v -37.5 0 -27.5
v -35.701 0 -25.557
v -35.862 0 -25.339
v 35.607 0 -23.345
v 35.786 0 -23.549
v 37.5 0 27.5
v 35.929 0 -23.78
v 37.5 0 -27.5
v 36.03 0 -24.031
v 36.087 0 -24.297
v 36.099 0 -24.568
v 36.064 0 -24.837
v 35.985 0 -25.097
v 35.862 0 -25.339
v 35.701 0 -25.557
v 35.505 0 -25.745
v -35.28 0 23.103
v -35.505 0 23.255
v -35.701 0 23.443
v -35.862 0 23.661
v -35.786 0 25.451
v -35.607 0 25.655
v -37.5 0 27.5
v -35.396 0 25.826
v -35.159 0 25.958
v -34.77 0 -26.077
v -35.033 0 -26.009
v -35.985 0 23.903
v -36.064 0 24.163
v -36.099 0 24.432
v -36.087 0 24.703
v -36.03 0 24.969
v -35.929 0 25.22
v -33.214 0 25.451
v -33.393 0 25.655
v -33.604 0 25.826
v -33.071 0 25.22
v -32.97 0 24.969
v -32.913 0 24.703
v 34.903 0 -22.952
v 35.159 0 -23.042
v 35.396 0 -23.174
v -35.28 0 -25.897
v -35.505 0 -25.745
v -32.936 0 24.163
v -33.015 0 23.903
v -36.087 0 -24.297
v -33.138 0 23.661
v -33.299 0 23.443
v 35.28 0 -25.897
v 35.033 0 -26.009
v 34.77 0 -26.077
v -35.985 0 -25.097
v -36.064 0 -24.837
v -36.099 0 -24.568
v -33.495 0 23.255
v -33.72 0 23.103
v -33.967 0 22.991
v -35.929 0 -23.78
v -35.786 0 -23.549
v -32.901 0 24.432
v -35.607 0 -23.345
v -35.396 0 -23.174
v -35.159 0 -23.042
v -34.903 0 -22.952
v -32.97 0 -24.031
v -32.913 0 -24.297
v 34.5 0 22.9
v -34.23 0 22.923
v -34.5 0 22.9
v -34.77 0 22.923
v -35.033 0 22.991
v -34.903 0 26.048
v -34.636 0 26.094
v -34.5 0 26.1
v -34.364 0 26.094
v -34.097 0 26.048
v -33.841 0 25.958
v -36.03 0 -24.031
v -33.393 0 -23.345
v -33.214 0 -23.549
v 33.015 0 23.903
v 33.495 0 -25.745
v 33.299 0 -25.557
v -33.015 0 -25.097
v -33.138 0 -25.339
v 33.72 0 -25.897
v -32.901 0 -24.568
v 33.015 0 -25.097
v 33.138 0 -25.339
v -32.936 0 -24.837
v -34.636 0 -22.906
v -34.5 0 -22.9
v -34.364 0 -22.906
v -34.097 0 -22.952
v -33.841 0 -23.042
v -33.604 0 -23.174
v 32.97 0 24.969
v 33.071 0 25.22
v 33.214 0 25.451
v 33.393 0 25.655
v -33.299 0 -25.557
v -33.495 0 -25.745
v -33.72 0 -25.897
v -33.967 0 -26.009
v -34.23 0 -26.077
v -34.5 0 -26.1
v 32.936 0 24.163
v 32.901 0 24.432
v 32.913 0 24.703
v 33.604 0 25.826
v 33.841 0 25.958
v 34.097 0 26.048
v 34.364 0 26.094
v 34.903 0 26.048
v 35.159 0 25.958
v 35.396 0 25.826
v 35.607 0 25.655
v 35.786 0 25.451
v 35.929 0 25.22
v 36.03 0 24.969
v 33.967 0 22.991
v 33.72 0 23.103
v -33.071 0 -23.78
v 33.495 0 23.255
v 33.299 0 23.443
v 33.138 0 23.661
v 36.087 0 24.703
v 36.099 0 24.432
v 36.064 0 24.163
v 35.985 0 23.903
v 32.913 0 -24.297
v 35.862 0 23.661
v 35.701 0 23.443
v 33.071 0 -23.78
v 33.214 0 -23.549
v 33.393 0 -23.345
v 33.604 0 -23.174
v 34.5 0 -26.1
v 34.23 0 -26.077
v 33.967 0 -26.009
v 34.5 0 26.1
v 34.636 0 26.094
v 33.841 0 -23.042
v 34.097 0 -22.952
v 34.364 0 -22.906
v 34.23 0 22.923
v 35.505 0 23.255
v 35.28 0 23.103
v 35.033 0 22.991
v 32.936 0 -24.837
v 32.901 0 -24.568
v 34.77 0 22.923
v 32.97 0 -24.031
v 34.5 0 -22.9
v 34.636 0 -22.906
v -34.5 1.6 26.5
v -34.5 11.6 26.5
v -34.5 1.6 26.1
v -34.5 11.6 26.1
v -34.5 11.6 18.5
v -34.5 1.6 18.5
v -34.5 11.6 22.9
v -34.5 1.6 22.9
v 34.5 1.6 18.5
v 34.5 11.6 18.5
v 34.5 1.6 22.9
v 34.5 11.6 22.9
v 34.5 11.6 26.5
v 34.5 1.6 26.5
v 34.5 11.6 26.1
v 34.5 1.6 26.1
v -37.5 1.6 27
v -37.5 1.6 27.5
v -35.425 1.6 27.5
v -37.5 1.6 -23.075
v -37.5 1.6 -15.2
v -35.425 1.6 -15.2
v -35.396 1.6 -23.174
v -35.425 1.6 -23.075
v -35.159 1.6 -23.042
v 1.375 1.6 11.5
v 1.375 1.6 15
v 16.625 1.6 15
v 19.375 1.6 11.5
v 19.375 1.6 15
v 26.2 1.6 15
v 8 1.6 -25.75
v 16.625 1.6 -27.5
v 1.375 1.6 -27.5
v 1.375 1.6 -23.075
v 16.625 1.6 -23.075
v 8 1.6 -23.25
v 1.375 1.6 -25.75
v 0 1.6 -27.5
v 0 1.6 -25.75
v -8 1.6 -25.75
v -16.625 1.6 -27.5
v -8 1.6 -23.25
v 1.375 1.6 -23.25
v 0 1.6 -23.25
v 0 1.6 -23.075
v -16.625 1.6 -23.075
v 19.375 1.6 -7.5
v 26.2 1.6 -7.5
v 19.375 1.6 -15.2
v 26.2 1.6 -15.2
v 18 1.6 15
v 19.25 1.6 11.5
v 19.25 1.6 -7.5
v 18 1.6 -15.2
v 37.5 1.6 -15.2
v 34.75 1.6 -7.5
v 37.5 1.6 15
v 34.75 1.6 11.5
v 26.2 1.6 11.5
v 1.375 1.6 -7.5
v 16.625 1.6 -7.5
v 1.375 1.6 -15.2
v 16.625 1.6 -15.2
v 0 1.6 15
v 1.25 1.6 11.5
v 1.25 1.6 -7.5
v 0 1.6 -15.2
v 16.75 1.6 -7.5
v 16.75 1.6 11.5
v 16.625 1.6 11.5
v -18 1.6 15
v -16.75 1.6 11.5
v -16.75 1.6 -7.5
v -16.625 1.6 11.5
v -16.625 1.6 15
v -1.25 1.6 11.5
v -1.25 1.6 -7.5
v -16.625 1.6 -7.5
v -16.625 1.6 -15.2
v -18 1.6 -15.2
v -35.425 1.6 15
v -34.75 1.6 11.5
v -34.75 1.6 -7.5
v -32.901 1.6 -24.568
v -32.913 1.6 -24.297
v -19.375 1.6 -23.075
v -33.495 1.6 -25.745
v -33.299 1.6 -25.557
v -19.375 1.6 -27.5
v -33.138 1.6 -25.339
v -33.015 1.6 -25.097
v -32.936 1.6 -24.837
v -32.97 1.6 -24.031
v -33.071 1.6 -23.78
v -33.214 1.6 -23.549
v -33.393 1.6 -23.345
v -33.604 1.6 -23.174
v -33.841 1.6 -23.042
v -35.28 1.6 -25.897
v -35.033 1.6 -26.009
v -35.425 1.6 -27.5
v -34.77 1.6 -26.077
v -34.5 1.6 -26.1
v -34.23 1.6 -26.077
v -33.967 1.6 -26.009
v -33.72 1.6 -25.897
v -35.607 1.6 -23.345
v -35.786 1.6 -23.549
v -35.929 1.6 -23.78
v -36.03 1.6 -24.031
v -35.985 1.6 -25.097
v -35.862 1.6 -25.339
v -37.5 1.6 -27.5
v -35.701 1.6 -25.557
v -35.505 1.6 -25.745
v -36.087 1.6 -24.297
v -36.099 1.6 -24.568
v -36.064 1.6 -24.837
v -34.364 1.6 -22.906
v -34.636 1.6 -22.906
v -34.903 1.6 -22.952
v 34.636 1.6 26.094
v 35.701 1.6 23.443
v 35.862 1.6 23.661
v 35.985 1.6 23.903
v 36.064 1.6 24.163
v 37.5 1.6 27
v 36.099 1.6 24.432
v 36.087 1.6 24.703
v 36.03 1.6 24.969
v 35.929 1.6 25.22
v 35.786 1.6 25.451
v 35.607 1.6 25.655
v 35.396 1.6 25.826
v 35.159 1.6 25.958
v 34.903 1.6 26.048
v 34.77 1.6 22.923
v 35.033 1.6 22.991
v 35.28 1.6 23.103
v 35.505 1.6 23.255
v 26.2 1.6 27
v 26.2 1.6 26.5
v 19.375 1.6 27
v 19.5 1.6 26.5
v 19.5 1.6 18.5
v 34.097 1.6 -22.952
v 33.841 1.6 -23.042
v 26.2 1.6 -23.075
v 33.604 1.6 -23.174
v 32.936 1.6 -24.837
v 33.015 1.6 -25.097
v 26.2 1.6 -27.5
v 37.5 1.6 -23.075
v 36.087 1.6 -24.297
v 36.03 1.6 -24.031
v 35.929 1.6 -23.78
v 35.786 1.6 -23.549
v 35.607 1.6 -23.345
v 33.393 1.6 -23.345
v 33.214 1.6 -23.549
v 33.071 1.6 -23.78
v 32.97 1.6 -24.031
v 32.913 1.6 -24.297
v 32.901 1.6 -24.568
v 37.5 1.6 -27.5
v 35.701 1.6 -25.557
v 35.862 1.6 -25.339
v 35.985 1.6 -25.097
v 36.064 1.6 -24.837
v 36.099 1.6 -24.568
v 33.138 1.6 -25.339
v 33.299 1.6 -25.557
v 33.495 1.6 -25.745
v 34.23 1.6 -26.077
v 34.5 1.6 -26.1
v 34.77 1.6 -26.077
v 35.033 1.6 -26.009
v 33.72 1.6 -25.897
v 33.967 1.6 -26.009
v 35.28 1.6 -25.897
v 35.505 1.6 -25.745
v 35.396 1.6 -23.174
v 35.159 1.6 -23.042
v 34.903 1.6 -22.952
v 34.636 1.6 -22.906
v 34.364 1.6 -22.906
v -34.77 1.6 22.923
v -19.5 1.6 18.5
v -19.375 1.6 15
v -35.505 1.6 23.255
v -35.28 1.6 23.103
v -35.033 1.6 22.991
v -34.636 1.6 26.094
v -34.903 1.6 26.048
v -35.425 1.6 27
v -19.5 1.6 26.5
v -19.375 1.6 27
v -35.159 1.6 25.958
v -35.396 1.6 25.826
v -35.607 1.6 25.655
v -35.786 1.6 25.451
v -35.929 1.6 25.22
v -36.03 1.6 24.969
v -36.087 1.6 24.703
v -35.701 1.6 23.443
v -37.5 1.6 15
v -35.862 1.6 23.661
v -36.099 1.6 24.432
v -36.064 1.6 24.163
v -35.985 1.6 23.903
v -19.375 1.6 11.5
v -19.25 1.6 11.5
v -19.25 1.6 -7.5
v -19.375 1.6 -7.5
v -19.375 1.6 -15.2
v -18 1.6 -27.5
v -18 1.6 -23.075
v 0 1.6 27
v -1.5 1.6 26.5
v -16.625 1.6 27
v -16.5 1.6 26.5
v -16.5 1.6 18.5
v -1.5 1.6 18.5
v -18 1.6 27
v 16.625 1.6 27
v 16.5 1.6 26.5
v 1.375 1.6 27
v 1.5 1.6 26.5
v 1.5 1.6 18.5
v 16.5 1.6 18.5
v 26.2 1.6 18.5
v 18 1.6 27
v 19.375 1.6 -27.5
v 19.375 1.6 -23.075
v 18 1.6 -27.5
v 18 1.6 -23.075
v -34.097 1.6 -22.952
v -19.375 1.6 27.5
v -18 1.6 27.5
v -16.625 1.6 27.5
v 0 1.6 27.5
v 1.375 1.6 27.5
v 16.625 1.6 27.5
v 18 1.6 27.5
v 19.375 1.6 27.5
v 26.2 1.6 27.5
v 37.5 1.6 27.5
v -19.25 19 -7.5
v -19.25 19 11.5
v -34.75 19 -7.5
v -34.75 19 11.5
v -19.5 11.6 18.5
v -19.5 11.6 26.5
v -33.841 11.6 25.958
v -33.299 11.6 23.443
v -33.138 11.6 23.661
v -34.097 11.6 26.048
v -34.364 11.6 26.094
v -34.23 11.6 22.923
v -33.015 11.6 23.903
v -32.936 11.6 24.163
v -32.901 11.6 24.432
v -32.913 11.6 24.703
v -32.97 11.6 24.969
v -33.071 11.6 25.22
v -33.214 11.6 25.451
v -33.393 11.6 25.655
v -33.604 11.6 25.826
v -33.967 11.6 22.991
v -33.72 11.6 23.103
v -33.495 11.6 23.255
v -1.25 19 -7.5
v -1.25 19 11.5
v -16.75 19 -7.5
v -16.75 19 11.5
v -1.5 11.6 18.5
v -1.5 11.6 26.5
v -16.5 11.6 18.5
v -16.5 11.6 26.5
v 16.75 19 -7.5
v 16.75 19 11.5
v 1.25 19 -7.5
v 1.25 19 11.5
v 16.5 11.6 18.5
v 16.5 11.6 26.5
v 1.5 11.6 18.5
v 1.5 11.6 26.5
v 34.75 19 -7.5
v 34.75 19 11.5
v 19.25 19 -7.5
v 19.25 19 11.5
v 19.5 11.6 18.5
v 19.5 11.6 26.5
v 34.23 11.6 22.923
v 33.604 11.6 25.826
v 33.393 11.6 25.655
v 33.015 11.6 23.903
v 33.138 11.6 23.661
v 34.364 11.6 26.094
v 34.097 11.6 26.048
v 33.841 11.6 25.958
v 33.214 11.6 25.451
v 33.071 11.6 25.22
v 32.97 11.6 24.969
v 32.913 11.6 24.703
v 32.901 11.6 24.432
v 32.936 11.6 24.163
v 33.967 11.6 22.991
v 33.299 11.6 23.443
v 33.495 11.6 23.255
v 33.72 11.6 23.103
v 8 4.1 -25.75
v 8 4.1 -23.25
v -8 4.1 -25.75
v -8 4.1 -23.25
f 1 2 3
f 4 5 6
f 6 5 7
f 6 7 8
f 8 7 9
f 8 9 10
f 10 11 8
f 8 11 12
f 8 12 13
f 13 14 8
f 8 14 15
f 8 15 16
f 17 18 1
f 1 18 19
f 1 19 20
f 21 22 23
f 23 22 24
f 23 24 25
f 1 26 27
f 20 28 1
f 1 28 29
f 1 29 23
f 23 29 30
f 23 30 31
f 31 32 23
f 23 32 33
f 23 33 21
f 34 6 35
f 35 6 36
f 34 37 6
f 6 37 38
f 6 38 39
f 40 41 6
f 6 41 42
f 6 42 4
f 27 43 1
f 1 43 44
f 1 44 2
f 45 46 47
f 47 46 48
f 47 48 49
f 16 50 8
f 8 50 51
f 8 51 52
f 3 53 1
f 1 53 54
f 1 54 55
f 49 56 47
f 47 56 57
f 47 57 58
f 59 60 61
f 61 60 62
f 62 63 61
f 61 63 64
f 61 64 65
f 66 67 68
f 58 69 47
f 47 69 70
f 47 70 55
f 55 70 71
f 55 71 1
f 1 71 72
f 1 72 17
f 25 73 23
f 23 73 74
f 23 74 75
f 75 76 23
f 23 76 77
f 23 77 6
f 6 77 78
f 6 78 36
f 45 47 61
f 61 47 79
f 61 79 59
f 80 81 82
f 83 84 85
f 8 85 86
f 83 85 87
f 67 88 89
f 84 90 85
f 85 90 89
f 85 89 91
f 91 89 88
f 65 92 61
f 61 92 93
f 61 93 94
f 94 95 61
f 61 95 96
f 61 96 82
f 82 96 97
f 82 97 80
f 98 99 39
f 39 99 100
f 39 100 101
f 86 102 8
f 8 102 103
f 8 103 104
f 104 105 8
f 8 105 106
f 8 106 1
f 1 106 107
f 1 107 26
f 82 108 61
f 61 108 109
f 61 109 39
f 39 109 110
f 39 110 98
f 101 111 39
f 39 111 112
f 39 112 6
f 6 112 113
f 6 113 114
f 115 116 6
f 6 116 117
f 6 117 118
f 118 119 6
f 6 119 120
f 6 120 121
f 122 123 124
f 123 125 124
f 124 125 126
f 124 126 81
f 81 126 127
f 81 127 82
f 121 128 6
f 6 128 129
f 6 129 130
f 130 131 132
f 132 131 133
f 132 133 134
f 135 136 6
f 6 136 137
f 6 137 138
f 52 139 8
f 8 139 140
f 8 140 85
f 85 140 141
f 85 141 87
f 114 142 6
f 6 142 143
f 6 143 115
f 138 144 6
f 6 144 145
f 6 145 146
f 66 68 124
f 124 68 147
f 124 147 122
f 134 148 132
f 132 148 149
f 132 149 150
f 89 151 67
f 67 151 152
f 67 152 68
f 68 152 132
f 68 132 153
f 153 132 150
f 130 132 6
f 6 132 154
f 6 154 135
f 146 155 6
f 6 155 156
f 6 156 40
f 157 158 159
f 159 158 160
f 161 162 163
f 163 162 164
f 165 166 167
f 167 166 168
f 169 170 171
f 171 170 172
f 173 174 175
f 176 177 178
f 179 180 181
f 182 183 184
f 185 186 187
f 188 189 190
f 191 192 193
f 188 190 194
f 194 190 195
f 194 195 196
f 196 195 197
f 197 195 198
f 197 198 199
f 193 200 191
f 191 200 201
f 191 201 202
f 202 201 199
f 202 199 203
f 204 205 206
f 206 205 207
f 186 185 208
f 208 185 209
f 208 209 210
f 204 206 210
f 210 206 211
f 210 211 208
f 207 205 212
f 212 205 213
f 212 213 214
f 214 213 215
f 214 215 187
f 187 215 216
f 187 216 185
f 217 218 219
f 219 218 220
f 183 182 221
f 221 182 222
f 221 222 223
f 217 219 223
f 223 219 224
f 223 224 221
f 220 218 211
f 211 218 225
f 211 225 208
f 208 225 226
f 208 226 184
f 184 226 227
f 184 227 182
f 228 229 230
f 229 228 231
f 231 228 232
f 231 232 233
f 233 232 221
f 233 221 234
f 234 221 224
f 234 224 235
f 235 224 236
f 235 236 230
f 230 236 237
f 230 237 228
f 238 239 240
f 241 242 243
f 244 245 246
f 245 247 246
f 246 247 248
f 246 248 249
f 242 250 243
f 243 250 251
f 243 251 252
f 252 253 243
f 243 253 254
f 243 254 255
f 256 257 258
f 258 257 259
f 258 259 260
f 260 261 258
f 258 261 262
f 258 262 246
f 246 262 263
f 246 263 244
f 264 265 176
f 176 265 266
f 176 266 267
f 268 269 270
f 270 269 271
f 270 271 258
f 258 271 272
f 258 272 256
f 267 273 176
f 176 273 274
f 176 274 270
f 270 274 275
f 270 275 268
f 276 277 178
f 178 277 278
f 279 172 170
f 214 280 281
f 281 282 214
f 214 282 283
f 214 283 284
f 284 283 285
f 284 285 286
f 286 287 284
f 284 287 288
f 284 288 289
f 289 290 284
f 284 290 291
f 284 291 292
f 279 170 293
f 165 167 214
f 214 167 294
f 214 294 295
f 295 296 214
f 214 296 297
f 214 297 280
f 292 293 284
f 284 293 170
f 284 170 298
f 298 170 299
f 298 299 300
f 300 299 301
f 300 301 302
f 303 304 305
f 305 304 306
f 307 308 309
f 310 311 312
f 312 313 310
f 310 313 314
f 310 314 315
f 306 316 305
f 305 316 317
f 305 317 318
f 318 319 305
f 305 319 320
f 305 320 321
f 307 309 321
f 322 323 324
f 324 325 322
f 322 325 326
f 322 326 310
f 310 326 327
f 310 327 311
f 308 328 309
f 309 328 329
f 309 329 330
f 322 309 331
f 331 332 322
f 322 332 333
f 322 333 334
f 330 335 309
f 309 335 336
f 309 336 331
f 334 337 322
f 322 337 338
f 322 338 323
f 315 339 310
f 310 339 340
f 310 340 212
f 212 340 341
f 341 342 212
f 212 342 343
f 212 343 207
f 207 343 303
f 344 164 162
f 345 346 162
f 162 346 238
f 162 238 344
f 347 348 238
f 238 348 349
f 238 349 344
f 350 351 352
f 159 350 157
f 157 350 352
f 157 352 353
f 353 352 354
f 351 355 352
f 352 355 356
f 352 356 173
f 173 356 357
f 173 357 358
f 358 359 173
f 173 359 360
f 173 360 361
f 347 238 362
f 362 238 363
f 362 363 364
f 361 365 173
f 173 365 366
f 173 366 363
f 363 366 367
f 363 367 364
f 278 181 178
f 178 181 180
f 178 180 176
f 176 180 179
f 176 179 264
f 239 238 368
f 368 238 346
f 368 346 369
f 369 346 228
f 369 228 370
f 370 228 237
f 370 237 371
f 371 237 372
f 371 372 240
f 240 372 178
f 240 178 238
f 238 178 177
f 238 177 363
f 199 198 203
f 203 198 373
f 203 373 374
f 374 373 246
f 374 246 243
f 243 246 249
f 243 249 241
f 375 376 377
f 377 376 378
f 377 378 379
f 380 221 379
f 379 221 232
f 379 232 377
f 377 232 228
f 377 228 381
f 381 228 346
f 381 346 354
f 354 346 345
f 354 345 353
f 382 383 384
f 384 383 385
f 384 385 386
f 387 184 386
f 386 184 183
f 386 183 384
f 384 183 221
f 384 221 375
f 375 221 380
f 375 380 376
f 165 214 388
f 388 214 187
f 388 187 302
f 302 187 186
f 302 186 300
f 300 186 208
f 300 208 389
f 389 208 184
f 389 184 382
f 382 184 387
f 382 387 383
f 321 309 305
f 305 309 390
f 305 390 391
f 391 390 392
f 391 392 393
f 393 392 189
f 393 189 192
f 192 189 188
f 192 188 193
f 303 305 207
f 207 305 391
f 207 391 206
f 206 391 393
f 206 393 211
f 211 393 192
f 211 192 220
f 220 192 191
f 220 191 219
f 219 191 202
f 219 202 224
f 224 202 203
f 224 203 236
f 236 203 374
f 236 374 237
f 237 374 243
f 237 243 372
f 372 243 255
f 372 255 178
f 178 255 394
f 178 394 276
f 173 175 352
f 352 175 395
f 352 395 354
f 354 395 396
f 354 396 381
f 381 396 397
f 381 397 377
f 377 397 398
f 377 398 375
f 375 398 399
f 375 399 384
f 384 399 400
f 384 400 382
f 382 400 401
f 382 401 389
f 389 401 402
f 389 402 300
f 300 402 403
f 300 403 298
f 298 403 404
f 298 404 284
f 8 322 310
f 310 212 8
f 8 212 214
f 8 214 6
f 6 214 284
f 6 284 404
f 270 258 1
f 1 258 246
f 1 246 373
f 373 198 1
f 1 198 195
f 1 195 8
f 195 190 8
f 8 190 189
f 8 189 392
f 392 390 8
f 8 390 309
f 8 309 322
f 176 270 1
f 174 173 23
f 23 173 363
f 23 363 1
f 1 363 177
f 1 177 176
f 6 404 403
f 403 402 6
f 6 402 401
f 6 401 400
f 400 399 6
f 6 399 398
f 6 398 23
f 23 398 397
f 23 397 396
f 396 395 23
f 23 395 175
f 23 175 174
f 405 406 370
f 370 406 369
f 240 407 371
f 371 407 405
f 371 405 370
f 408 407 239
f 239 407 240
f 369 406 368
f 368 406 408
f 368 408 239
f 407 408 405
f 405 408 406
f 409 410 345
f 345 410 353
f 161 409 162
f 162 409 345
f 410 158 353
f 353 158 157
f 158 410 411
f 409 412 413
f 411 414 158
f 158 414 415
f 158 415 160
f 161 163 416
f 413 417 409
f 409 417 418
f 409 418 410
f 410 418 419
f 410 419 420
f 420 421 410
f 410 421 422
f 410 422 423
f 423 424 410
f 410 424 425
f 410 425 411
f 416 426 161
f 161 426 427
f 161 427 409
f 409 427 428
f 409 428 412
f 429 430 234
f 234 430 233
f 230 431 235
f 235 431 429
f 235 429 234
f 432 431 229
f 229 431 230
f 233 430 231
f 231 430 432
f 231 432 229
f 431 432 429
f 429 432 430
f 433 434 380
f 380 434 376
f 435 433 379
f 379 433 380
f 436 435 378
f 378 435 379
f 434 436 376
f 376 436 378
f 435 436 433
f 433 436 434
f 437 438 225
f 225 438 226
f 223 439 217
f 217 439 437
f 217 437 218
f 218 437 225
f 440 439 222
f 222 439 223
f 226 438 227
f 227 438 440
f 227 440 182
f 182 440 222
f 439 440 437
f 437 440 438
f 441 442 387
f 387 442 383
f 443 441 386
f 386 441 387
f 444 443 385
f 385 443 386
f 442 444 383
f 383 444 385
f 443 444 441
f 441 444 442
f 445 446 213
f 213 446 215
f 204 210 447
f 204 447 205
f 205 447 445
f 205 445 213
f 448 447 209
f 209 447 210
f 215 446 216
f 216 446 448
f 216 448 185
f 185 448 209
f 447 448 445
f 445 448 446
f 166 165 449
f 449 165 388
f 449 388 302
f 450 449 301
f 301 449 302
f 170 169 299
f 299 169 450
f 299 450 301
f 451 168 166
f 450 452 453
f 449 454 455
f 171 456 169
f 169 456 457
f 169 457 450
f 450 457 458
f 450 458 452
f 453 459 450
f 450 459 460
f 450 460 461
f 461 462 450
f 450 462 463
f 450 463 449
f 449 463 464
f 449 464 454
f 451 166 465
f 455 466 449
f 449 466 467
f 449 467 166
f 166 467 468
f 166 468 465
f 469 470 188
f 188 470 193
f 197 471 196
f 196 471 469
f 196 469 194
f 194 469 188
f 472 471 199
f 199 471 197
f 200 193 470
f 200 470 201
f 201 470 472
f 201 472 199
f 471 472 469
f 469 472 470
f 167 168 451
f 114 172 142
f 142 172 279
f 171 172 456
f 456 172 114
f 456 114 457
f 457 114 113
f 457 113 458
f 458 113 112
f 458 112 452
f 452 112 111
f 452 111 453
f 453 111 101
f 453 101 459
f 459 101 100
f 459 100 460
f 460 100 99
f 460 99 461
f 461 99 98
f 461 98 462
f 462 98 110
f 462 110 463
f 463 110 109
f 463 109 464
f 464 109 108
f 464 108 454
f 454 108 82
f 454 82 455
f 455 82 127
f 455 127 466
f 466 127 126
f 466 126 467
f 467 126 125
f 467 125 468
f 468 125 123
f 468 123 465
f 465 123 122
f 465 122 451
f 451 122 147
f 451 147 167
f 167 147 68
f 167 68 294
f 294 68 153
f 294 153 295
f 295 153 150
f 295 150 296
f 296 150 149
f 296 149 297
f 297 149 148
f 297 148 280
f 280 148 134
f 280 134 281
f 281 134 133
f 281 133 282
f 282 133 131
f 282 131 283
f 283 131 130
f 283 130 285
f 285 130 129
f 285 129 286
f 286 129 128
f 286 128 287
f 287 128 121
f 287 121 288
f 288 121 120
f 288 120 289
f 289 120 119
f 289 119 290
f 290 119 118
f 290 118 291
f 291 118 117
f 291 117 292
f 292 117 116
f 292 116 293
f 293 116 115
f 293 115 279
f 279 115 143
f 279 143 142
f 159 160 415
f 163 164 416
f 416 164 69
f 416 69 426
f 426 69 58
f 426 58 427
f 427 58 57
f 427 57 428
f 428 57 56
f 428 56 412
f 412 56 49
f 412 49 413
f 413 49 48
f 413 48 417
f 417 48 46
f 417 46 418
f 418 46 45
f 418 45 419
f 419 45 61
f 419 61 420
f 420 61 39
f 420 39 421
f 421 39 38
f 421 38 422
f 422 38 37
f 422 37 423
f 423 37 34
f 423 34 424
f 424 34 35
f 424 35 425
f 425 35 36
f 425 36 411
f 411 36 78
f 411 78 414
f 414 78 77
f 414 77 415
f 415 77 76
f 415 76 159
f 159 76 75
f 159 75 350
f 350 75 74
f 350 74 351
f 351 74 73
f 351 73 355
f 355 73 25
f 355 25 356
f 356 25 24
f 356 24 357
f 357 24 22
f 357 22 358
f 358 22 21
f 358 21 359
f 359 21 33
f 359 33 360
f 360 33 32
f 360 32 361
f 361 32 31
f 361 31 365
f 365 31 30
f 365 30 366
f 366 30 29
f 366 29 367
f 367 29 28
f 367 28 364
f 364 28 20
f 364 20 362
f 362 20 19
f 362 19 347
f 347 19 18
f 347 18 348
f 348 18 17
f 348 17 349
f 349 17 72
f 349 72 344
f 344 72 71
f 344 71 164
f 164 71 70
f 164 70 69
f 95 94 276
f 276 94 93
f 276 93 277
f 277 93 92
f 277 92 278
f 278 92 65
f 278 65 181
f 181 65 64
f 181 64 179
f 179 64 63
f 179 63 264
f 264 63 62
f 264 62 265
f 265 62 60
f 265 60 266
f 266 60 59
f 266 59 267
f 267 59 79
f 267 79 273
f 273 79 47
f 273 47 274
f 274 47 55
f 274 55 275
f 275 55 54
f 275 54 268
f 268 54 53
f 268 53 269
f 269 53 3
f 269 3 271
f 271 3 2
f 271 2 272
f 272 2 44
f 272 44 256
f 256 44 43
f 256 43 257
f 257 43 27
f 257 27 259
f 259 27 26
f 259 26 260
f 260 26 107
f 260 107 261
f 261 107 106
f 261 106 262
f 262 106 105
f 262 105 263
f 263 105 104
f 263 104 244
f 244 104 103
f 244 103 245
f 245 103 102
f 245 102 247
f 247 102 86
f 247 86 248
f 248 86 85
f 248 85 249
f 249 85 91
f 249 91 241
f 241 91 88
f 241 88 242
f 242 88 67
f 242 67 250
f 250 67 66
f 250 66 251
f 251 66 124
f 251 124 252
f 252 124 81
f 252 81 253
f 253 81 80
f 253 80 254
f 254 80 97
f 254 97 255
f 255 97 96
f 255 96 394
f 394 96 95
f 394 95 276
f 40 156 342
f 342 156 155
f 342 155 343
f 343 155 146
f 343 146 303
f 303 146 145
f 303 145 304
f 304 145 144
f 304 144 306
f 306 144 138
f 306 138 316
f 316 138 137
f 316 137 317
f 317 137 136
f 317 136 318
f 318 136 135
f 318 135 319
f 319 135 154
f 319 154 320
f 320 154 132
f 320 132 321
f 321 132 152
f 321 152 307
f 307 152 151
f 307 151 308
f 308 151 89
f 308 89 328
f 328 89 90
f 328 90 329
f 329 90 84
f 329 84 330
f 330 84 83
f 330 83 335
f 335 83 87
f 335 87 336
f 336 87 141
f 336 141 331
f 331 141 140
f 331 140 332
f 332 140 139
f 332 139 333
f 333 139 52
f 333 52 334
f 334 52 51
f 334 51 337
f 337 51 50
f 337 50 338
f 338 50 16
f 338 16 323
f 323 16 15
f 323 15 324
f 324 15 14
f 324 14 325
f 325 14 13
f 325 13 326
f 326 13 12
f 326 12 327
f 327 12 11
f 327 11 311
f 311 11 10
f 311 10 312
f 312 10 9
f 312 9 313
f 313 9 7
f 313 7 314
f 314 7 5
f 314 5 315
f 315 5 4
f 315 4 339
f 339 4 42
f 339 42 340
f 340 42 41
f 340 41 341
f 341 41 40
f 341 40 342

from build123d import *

# Parameters (mm, degrees)
SKETCH1_W              = 75
SKETCH1_H              = 55
PCB_DEPTH              = 1.6
RELAY_1_START          = 1.6
SKETCH2_W              = 15.5
SKETCH2_H              = 19
RELAY_1_DEPTH          = 17.4
TERMINAL_1_START       = 1.6
SKETCH3_W              = 15
SKETCH3_H              = 8
TERMINAL_1_DEPTH       = 10
RELAY_2_START          = 1.6
SKETCH4_W              = 15.5
SKETCH4_H              = 19
RELAY_2_DEPTH          = 17.4
TERMINAL_2_START       = 1.6
SKETCH5_W              = 15
SKETCH5_H              = 8
TERMINAL_2_DEPTH       = 10
RELAY_3_START          = 1.6
SKETCH6_W              = 15.5
SKETCH6_H              = 19
RELAY_3_DEPTH          = 17.4
TERMINAL_3_START       = 1.6
SKETCH7_W              = 15
SKETCH7_H              = 8
TERMINAL_3_DEPTH       = 10
RELAY_4_START          = 1.6
SKETCH8_W              = 15.5
SKETCH8_H              = 19
RELAY_4_DEPTH          = 17.4
TERMINAL_4_START       = 1.6
SKETCH9_W              = 15
SKETCH9_H              = 8
TERMINAL_4_DEPTH       = 10
HEADER_START           = 1.6
SKETCH10_W             = 16
SKETCH10_H             = 2.5
HEADER_DEPTH           = 2.5
MOUNT_HOLES_DEPTH      = 51.23445033
MOUNT_HOLES_DEPTH_BACK = 51.23445033
SKETCH11_R             = 1.6


with BuildPart() as part:
    # Sketch1 → PCB (new body)
    with BuildSketch(Plane(origin=(0, 0, 0), x_dir=(1, 0, 0), z_dir=(0, 1, 0))):
        Rectangle(SKETCH1_W, SKETCH1_H)
    extrude(amount=PCB_DEPTH)

    # Sketch2 → Relay_1 (add)
    with BuildSketch(Plane(origin=(0, 0, 0), x_dir=(1, 0, 0), z_dir=(0, 1, 0)).offset(RELAY_1_START)):
        with Locations((-27, -2)):
            Rectangle(SKETCH2_W, SKETCH2_H)
    extrude(amount=RELAY_1_DEPTH)

    # Sketch3 → Terminal_1 (add)
    with BuildSketch(Plane(origin=(0, 0, 0), x_dir=(1, 0, 0), z_dir=(0, 1, 0)).offset(TERMINAL_1_START)):
        with Locations((-27, -22.5)):
            Rectangle(SKETCH3_W, SKETCH3_H)
    extrude(amount=TERMINAL_1_DEPTH)

    # Sketch4 → Relay_2 (add)
    with BuildSketch(Plane(origin=(0, 0, 0), x_dir=(1, 0, 0), z_dir=(0, 1, 0)).offset(RELAY_2_START)):
        with Locations((-9, -2)):
            Rectangle(SKETCH4_W, SKETCH4_H)
    extrude(amount=RELAY_2_DEPTH)

    # Sketch5 → Terminal_2 (add)
    with BuildSketch(Plane(origin=(0, 0, 0), x_dir=(1, 0, 0), z_dir=(0, 1, 0)).offset(TERMINAL_2_START)):
        with Locations((-9, -22.5)):
            Rectangle(SKETCH5_W, SKETCH5_H)
    extrude(amount=TERMINAL_2_DEPTH)

    # Sketch6 → Relay_3 (add)
    with BuildSketch(Plane(origin=(0, 0, 0), x_dir=(1, 0, 0), z_dir=(0, 1, 0)).offset(RELAY_3_START)):
        with Locations((9, -2)):
            Rectangle(SKETCH6_W, SKETCH6_H)
    extrude(amount=RELAY_3_DEPTH)

    # Sketch7 → Terminal_3 (add)
    with BuildSketch(Plane(origin=(0, 0, 0), x_dir=(1, 0, 0), z_dir=(0, 1, 0)).offset(TERMINAL_3_START)):
        with Locations((9, -22.5)):
            Rectangle(SKETCH7_W, SKETCH7_H)
    extrude(amount=TERMINAL_3_DEPTH)

    # Sketch8 → Relay_4 (add)
    with BuildSketch(Plane(origin=(0, 0, 0), x_dir=(1, 0, 0), z_dir=(0, 1, 0)).offset(RELAY_4_START)):
        with Locations((27, -2)):
            Rectangle(SKETCH8_W, SKETCH8_H)
    extrude(amount=RELAY_4_DEPTH)

    # Sketch9 → Terminal_4 (add)
    with BuildSketch(Plane(origin=(0, 0, 0), x_dir=(1, 0, 0), z_dir=(0, 1, 0)).offset(TERMINAL_4_START)):
        with Locations((27, -22.5)):
            Rectangle(SKETCH9_W, SKETCH9_H)
    extrude(amount=TERMINAL_4_DEPTH)

    # Sketch10 → Header (add)
    with BuildSketch(Plane(origin=(0, 0, 0), x_dir=(1, 0, 0), z_dir=(0, 1, 0)).offset(HEADER_START)):
        with Locations((0, 24.5)):
            Rectangle(SKETCH10_W, SKETCH10_H)
    extrude(amount=HEADER_DEPTH)

    # Sketch11 → Mount_Holes (cut, two sides: drawn at the far end of the back side and taken through both)
    with BuildSketch(Plane(origin=(0, 0, 0), x_dir=(1, 0, 0), z_dir=(0, 1, 0)).offset(-MOUNT_HOLES_DEPTH_BACK)):
        with Locations(Location((-34.5, 24.5, 0), (0, 0, 90))):
            Circle(SKETCH11_R)
        with Locations(Location((-34.5, -24.5, 0), (0, 0, 270))):
            Circle(SKETCH11_R)
        with Locations(Location((34.5, 24.5, 0), (0, 0, 90))):
            Circle(SKETCH11_R)
        with Locations(Location((34.5, -24.5, 0), (0, 0, 270))):
            Circle(SKETCH11_R)
    extrude(amount=MOUNT_HOLES_DEPTH + MOUNT_HOLES_DEPTH_BACK, mode=Mode.SUBTRACT)


solid = part.part
